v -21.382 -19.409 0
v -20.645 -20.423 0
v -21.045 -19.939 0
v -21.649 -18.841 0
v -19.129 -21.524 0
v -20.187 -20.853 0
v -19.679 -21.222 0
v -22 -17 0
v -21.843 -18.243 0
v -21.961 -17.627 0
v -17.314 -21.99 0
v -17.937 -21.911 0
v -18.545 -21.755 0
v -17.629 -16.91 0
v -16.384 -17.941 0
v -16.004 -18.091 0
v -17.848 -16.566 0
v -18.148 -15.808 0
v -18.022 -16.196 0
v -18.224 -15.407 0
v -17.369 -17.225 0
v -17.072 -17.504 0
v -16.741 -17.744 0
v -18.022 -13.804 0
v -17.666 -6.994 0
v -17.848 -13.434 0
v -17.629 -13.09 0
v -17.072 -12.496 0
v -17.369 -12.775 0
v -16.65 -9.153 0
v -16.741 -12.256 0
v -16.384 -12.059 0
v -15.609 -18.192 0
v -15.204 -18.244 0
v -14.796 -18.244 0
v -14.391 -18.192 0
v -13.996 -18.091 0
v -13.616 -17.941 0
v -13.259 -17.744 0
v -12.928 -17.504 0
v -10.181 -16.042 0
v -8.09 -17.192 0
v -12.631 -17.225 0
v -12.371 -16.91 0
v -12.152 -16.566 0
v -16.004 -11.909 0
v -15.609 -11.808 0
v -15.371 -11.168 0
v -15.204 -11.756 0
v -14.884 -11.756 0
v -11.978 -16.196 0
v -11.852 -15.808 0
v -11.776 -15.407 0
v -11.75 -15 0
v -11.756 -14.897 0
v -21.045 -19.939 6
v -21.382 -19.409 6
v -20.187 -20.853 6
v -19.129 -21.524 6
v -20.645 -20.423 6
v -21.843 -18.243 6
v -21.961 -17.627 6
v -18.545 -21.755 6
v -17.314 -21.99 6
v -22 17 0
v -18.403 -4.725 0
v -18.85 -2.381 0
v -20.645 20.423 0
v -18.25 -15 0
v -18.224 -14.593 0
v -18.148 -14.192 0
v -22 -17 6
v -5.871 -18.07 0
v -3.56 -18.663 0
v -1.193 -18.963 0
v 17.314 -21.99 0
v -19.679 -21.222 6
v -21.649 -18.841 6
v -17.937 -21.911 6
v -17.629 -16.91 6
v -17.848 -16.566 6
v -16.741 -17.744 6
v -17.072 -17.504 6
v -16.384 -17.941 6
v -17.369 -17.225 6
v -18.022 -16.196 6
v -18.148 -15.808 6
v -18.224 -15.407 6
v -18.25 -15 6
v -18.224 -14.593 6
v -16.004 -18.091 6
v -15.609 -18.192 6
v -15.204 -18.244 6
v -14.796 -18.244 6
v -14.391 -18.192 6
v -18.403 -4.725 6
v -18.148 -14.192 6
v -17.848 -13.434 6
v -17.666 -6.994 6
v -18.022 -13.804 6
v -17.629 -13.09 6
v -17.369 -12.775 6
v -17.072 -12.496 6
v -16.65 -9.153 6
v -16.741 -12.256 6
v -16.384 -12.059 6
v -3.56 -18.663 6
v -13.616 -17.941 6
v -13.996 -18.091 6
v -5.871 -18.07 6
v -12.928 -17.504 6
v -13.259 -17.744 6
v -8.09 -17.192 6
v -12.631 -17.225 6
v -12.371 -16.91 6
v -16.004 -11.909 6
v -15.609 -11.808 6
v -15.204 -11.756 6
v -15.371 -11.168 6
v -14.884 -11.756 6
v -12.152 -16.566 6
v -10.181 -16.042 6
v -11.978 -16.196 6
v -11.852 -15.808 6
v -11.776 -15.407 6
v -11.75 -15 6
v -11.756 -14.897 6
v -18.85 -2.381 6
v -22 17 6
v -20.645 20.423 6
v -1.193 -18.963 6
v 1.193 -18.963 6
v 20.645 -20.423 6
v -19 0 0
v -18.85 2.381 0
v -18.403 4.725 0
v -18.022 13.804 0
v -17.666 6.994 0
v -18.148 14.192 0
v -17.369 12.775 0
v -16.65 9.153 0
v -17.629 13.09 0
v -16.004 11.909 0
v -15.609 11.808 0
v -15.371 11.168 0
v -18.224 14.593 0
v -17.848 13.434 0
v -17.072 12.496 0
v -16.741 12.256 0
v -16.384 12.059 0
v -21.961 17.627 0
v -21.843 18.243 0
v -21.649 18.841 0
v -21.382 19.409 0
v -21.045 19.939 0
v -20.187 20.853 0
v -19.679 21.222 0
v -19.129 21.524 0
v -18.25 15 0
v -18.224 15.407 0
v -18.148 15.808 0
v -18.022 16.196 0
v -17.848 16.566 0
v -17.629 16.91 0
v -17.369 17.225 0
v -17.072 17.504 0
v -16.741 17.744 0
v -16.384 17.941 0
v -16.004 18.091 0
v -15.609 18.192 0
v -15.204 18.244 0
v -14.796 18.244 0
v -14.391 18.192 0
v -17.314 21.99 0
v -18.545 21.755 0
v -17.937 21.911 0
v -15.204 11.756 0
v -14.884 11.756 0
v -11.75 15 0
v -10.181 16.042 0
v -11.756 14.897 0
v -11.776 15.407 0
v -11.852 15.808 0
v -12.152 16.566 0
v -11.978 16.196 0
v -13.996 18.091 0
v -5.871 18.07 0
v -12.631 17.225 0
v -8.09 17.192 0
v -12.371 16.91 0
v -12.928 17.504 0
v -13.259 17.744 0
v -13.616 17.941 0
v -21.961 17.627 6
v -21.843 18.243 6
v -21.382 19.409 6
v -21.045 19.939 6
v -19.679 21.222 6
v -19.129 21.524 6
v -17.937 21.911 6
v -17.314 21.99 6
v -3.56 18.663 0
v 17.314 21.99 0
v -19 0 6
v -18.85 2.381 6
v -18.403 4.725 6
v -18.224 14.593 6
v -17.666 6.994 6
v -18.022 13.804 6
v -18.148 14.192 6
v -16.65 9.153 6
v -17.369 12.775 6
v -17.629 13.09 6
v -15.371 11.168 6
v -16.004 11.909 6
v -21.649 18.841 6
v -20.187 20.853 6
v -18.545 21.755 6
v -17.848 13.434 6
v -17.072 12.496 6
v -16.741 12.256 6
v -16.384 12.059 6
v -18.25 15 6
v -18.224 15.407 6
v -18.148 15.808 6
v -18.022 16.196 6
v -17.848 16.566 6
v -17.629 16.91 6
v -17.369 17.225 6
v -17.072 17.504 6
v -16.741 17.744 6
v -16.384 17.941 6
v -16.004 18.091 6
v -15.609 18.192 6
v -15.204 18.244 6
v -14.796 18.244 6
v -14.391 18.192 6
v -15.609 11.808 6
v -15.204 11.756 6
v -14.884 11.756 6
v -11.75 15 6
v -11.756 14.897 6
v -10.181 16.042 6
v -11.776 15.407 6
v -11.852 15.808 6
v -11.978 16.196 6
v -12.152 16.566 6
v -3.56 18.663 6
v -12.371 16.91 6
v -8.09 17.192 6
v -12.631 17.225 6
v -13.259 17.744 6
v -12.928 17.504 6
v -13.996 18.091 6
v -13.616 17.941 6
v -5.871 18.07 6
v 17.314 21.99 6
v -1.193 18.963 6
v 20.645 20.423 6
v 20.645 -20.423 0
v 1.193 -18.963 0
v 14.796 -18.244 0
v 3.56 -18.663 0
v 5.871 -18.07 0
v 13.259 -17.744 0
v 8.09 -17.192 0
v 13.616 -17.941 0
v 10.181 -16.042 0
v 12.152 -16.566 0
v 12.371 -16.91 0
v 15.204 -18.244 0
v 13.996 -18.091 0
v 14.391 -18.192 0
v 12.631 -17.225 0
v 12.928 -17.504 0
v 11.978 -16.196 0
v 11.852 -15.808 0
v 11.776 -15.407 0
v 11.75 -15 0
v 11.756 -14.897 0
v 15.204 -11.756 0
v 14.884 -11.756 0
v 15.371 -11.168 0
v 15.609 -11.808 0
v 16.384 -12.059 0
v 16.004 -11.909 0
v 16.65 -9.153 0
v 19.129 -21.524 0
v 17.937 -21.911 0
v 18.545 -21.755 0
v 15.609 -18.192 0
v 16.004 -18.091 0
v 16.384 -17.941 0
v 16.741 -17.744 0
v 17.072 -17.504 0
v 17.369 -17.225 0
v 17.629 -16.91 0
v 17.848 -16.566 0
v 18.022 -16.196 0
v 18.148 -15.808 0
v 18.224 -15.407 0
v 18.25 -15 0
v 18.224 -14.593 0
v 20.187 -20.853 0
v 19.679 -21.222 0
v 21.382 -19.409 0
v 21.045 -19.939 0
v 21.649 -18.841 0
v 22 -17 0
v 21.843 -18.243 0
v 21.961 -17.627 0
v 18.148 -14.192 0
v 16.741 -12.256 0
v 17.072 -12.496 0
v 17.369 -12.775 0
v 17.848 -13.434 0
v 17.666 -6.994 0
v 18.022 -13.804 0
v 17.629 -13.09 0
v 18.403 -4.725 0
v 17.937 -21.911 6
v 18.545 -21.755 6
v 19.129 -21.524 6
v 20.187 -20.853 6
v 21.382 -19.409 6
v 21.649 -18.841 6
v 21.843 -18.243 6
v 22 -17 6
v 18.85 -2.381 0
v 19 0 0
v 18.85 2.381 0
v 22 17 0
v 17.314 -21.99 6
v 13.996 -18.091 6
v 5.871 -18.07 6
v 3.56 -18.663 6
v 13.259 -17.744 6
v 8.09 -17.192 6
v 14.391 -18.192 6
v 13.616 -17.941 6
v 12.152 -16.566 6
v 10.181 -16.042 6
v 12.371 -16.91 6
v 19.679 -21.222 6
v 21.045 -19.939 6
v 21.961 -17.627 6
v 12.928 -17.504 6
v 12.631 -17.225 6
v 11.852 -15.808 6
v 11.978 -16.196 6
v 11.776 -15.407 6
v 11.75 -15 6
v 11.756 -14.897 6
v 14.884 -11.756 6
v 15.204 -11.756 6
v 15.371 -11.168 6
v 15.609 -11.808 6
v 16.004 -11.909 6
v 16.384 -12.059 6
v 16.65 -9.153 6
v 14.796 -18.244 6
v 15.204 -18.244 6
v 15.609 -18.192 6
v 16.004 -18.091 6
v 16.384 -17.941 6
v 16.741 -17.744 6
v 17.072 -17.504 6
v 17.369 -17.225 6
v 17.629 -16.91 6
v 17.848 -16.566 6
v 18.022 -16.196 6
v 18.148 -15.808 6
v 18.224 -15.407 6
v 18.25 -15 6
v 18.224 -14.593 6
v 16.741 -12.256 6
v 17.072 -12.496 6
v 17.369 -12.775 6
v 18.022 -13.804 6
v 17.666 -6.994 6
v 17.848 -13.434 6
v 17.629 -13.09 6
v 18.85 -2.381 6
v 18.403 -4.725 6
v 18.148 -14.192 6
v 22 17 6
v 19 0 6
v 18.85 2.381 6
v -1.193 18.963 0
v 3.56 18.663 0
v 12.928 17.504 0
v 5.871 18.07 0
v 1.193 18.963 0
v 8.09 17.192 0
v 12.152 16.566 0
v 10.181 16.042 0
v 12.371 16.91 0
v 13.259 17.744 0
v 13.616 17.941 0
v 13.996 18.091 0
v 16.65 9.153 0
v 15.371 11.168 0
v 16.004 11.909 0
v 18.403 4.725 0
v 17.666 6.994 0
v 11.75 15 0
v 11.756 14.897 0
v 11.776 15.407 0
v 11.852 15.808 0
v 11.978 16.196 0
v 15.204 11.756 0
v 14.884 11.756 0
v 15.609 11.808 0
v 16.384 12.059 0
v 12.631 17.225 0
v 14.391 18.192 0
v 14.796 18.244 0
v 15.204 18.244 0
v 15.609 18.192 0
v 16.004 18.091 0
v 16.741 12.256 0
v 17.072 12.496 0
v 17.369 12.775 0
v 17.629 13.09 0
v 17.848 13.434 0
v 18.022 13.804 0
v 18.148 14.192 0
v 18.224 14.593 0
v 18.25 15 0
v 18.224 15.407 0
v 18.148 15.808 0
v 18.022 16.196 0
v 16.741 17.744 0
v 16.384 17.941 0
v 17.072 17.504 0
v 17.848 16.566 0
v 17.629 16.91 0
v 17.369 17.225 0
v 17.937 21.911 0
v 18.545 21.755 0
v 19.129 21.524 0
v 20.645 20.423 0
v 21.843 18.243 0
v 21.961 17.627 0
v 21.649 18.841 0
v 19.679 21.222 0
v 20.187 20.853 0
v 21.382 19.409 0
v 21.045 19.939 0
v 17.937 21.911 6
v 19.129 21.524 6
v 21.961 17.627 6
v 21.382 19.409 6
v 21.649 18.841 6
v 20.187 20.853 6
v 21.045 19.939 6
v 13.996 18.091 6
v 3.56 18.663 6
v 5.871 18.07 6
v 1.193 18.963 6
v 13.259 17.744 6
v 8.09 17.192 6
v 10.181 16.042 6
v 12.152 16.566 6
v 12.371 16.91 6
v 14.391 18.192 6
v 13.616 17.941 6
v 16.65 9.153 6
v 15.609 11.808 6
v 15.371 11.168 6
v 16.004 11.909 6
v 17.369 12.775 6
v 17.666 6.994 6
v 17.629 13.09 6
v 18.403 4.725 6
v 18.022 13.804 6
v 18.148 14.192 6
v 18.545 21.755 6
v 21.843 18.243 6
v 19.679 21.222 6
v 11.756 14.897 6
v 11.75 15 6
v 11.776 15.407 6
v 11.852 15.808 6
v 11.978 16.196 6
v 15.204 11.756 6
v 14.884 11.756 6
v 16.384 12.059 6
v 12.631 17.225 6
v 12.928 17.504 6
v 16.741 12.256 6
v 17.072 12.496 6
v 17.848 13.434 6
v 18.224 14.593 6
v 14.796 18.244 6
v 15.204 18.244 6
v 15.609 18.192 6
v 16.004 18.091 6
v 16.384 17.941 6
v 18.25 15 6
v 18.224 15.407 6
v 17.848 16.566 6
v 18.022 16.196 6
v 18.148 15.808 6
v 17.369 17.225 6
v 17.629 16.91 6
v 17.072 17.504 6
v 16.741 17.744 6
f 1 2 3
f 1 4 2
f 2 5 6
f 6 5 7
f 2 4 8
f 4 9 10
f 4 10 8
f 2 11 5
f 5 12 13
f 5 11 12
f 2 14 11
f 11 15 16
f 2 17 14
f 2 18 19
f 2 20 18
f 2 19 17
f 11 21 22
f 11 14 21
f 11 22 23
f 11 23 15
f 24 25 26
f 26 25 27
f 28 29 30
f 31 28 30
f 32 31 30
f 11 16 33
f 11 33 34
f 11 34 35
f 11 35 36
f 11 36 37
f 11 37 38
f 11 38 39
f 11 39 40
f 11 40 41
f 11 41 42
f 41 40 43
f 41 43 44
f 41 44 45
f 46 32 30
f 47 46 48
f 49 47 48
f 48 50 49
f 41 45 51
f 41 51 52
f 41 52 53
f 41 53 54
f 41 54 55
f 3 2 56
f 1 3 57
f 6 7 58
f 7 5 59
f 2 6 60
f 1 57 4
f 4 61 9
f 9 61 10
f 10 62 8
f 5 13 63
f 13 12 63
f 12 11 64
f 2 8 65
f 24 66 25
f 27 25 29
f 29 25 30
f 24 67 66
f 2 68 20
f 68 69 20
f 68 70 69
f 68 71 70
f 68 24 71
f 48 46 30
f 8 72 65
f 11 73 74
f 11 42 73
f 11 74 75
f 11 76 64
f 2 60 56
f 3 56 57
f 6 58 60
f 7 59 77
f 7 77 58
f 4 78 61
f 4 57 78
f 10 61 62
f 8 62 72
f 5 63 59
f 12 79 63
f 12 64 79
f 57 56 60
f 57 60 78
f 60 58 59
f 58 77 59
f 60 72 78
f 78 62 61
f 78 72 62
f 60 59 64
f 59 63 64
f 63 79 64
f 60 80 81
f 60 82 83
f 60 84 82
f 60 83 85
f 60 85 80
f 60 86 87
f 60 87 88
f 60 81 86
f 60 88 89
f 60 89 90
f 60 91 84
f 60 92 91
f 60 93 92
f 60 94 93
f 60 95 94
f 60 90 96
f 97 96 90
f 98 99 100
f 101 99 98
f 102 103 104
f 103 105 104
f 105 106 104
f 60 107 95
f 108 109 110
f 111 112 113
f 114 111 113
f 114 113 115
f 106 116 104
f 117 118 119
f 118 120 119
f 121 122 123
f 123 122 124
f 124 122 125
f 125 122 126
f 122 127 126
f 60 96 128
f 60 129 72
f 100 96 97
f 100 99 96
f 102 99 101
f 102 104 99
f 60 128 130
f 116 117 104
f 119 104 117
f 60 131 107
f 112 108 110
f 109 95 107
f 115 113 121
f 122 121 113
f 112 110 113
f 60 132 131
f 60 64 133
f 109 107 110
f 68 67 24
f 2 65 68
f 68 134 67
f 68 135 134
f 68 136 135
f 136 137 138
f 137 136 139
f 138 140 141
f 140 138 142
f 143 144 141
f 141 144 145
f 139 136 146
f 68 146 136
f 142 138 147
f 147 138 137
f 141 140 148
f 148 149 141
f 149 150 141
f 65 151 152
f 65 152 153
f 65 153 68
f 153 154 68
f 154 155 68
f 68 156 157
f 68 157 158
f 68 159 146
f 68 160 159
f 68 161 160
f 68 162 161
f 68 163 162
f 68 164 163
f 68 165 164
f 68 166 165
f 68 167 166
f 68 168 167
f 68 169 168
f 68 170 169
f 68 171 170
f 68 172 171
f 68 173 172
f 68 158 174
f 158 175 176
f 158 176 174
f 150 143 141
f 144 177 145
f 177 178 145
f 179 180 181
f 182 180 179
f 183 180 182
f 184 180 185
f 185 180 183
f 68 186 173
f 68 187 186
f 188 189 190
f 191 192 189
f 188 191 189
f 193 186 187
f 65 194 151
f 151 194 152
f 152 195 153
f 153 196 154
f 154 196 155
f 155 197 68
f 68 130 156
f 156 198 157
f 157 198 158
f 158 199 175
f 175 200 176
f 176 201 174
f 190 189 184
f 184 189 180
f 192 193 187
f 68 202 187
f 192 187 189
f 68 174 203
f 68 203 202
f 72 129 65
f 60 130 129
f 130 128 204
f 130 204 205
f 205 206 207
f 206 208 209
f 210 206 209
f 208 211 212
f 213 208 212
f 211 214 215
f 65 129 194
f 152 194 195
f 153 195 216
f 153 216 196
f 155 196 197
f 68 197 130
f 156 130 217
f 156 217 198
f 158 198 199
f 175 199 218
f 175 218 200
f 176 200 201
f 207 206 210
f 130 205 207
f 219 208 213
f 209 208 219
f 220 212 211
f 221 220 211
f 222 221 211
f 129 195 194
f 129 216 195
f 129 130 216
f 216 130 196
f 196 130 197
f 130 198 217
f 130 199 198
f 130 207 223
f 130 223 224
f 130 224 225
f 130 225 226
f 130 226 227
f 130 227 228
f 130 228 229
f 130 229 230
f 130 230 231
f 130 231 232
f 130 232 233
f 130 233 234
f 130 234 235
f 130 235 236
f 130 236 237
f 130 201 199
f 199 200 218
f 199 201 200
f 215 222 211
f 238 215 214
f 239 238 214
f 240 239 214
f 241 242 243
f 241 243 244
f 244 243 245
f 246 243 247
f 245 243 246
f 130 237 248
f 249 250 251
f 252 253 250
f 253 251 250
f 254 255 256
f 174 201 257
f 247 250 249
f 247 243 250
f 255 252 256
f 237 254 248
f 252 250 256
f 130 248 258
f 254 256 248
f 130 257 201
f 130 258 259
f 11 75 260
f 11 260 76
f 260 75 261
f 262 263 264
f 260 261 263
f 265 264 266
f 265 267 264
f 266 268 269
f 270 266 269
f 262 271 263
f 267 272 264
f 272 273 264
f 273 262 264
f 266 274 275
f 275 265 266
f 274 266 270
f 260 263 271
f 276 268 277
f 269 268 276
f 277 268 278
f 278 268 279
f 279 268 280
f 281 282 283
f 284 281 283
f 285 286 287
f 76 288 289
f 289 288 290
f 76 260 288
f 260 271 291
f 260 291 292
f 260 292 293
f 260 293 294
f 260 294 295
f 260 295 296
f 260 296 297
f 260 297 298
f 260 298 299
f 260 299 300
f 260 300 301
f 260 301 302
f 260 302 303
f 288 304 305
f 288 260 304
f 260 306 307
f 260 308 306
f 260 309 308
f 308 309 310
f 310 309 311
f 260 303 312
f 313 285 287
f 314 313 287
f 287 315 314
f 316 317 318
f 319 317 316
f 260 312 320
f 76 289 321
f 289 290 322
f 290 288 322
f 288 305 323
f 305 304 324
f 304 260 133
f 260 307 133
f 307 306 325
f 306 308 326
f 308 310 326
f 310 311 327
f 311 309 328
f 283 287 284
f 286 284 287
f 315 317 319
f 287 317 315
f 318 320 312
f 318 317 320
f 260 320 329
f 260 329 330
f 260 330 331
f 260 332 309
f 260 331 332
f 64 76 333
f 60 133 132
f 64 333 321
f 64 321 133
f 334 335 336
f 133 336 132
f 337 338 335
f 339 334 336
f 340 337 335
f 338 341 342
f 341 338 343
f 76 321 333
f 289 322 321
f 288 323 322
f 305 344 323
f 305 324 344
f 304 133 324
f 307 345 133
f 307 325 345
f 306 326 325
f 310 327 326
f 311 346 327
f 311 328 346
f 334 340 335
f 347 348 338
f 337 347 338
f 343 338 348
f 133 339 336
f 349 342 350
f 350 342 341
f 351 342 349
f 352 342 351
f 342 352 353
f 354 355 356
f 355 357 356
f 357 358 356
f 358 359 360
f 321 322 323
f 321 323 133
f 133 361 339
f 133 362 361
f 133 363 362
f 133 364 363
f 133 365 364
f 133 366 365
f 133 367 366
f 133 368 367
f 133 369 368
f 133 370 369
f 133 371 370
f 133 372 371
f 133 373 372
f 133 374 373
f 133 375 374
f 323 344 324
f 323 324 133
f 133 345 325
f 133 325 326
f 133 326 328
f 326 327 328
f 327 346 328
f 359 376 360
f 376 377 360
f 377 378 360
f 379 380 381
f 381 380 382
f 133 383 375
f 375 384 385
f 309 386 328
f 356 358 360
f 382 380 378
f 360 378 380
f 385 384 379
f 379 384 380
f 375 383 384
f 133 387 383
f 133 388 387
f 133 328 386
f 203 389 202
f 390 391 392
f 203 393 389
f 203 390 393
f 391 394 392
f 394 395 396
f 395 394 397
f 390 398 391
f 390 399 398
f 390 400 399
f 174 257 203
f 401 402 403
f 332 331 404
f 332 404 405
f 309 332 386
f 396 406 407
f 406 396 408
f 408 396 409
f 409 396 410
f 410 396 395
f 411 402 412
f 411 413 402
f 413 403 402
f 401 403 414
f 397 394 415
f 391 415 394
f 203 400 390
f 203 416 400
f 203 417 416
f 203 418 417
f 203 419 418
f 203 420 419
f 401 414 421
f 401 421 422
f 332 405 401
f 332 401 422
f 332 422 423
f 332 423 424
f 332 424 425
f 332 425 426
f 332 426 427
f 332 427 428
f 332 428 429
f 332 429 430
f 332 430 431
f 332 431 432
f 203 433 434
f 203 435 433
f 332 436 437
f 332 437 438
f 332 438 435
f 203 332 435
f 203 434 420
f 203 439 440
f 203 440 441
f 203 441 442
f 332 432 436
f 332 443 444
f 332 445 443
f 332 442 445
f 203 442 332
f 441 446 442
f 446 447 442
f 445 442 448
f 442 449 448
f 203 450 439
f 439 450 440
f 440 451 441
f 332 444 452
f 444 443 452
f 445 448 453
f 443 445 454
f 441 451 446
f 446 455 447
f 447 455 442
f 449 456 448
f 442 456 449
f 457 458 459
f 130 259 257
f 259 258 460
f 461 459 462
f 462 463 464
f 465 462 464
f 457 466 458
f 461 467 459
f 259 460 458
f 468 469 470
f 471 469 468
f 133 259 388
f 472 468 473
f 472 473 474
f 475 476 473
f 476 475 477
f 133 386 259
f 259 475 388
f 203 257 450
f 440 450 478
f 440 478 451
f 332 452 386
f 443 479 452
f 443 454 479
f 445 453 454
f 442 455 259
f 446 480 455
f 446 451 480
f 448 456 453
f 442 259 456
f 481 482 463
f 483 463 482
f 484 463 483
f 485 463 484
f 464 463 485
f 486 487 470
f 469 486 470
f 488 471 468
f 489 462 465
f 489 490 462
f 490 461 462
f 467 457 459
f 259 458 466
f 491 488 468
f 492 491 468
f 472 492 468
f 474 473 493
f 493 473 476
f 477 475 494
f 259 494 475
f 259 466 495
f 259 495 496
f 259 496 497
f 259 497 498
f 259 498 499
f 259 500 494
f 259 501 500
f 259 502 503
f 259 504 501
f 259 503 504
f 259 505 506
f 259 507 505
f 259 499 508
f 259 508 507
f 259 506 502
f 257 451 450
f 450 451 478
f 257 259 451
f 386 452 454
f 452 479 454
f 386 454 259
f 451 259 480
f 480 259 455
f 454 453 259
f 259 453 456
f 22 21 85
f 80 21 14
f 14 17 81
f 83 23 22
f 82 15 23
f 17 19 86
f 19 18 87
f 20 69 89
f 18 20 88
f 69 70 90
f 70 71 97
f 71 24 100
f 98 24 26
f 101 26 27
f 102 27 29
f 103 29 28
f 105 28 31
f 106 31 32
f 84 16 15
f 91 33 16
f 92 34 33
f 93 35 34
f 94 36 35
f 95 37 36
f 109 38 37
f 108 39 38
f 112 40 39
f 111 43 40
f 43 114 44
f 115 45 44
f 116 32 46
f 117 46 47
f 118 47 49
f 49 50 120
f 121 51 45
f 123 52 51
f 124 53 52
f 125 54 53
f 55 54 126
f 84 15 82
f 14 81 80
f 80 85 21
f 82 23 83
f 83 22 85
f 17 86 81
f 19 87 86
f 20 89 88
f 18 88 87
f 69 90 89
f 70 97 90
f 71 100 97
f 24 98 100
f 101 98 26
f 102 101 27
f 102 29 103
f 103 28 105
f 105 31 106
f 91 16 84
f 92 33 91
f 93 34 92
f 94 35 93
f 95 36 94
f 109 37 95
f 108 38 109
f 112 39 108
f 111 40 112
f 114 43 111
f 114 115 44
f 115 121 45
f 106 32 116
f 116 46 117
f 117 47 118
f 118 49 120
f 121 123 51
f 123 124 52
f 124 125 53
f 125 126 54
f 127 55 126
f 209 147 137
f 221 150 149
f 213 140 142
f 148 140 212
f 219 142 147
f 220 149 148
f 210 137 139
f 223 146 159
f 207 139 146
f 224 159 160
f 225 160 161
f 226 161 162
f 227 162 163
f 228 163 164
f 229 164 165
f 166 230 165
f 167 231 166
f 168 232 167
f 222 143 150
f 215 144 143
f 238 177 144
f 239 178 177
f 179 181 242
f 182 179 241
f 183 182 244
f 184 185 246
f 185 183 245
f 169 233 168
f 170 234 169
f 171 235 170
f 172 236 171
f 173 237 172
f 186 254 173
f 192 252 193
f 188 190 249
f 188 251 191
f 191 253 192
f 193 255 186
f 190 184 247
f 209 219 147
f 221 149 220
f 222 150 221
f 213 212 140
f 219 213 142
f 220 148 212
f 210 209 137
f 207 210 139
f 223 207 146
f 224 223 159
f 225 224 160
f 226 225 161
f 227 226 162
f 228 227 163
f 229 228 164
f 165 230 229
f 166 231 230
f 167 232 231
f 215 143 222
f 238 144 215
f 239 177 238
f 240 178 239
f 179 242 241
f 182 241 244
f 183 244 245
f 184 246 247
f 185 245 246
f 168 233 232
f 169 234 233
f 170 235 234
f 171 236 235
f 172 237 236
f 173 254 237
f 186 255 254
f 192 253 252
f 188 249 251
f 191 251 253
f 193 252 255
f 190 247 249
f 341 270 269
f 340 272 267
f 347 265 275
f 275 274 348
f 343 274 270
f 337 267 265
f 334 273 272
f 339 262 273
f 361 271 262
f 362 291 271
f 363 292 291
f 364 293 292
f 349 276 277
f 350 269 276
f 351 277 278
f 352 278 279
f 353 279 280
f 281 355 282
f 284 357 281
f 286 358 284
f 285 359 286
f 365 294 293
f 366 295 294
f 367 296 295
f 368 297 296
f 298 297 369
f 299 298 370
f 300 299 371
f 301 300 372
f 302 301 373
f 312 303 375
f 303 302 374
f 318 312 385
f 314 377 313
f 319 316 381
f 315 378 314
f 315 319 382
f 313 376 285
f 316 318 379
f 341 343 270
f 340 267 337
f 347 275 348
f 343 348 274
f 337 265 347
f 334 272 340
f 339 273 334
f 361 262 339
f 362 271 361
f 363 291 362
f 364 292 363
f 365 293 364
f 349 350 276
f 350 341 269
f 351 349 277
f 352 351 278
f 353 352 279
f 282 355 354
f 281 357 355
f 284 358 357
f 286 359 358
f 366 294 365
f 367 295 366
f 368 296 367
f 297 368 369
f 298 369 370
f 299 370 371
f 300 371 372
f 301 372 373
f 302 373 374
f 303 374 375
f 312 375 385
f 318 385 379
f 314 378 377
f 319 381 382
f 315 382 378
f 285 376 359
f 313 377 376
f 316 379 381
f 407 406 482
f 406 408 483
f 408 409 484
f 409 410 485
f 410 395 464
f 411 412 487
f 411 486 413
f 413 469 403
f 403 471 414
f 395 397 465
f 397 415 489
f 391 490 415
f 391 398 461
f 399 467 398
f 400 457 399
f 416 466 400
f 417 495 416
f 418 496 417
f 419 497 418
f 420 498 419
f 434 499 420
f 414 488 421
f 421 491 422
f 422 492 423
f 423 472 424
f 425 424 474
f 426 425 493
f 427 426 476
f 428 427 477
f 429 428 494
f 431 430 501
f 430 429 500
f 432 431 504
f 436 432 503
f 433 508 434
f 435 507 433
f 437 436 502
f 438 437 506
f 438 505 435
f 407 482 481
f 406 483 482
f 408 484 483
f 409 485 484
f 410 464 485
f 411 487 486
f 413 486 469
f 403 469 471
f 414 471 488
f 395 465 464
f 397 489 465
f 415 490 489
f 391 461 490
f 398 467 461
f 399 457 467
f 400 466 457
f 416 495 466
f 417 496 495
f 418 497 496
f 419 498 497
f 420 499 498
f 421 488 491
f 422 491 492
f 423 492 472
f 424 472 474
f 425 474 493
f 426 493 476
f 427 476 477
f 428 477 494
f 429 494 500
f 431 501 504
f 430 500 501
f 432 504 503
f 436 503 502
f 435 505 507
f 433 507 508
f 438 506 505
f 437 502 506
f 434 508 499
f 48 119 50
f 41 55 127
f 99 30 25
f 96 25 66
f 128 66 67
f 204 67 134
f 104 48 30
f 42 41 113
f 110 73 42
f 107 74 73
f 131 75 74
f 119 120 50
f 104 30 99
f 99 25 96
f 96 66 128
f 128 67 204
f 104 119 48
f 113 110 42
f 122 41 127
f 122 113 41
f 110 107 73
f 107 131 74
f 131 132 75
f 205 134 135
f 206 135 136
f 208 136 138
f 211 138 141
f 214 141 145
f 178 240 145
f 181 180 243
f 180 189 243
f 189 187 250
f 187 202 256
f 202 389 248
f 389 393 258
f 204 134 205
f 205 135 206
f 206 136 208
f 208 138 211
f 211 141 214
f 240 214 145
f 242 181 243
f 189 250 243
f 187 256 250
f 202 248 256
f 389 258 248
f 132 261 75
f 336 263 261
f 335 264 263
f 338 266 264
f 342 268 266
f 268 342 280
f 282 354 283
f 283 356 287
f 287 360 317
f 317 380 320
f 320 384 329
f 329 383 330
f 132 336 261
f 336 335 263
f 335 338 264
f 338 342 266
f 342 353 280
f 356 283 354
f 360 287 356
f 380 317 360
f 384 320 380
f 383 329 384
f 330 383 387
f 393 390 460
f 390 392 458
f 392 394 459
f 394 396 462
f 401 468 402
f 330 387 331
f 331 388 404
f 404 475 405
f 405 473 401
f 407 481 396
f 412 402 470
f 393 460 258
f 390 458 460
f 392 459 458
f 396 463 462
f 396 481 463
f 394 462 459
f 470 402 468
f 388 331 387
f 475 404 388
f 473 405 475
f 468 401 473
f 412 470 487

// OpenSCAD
$fn = 50;

difference() {
	union() {
		hull() {
			translate(v = [-17.0, 17.0, 0]) {
				cylinder(h = 6, r = 5);
			}
			translate(v = [17.0, 17.0, 0]) {
				cylinder(h = 6, r = 5);
			}
			translate(v = [-17.0, -17.0, 0]) {
				cylinder(h = 6, r = 5);
			}
			translate(v = [17.0, -17.0, 0]) {
				cylinder(h = 6, r = 5);
			}
		}
	}
	union() {
		translate(v = [-15.0, -15.0, -100.0]) {
			cylinder(h = 200, r = 3.25);
		}
		translate(v = [-15.0, 15.0, -100.0]) {
			cylinder(h = 200, r = 3.25);
		}
		translate(v = [15.0, -15.0, -100.0]) {
			cylinder(h = 200, r = 3.25);
		}
		translate(v = [15.0, 15.0, -100.0]) {
			cylinder(h = 200, r = 3.25);
		}
		translate(v = [-15.0, -15.0, -100.0]) {
			cylinder(h = 200, r = 1.8);
		}
		translate(v = [-15.0, 15.0, -100.0]) {
			cylinder(h = 200, r = 1.8);
		}
		translate(v = [15.0, -15.0, -100.0]) {
			cylinder(h = 200, r = 1.8);
		}
		translate(v = [15.0, 15.0, -100.0]) {
			cylinder(h = 200, r = 1.8);
		}
		cylinder(h = 6, r = 19.0);
	}
}
